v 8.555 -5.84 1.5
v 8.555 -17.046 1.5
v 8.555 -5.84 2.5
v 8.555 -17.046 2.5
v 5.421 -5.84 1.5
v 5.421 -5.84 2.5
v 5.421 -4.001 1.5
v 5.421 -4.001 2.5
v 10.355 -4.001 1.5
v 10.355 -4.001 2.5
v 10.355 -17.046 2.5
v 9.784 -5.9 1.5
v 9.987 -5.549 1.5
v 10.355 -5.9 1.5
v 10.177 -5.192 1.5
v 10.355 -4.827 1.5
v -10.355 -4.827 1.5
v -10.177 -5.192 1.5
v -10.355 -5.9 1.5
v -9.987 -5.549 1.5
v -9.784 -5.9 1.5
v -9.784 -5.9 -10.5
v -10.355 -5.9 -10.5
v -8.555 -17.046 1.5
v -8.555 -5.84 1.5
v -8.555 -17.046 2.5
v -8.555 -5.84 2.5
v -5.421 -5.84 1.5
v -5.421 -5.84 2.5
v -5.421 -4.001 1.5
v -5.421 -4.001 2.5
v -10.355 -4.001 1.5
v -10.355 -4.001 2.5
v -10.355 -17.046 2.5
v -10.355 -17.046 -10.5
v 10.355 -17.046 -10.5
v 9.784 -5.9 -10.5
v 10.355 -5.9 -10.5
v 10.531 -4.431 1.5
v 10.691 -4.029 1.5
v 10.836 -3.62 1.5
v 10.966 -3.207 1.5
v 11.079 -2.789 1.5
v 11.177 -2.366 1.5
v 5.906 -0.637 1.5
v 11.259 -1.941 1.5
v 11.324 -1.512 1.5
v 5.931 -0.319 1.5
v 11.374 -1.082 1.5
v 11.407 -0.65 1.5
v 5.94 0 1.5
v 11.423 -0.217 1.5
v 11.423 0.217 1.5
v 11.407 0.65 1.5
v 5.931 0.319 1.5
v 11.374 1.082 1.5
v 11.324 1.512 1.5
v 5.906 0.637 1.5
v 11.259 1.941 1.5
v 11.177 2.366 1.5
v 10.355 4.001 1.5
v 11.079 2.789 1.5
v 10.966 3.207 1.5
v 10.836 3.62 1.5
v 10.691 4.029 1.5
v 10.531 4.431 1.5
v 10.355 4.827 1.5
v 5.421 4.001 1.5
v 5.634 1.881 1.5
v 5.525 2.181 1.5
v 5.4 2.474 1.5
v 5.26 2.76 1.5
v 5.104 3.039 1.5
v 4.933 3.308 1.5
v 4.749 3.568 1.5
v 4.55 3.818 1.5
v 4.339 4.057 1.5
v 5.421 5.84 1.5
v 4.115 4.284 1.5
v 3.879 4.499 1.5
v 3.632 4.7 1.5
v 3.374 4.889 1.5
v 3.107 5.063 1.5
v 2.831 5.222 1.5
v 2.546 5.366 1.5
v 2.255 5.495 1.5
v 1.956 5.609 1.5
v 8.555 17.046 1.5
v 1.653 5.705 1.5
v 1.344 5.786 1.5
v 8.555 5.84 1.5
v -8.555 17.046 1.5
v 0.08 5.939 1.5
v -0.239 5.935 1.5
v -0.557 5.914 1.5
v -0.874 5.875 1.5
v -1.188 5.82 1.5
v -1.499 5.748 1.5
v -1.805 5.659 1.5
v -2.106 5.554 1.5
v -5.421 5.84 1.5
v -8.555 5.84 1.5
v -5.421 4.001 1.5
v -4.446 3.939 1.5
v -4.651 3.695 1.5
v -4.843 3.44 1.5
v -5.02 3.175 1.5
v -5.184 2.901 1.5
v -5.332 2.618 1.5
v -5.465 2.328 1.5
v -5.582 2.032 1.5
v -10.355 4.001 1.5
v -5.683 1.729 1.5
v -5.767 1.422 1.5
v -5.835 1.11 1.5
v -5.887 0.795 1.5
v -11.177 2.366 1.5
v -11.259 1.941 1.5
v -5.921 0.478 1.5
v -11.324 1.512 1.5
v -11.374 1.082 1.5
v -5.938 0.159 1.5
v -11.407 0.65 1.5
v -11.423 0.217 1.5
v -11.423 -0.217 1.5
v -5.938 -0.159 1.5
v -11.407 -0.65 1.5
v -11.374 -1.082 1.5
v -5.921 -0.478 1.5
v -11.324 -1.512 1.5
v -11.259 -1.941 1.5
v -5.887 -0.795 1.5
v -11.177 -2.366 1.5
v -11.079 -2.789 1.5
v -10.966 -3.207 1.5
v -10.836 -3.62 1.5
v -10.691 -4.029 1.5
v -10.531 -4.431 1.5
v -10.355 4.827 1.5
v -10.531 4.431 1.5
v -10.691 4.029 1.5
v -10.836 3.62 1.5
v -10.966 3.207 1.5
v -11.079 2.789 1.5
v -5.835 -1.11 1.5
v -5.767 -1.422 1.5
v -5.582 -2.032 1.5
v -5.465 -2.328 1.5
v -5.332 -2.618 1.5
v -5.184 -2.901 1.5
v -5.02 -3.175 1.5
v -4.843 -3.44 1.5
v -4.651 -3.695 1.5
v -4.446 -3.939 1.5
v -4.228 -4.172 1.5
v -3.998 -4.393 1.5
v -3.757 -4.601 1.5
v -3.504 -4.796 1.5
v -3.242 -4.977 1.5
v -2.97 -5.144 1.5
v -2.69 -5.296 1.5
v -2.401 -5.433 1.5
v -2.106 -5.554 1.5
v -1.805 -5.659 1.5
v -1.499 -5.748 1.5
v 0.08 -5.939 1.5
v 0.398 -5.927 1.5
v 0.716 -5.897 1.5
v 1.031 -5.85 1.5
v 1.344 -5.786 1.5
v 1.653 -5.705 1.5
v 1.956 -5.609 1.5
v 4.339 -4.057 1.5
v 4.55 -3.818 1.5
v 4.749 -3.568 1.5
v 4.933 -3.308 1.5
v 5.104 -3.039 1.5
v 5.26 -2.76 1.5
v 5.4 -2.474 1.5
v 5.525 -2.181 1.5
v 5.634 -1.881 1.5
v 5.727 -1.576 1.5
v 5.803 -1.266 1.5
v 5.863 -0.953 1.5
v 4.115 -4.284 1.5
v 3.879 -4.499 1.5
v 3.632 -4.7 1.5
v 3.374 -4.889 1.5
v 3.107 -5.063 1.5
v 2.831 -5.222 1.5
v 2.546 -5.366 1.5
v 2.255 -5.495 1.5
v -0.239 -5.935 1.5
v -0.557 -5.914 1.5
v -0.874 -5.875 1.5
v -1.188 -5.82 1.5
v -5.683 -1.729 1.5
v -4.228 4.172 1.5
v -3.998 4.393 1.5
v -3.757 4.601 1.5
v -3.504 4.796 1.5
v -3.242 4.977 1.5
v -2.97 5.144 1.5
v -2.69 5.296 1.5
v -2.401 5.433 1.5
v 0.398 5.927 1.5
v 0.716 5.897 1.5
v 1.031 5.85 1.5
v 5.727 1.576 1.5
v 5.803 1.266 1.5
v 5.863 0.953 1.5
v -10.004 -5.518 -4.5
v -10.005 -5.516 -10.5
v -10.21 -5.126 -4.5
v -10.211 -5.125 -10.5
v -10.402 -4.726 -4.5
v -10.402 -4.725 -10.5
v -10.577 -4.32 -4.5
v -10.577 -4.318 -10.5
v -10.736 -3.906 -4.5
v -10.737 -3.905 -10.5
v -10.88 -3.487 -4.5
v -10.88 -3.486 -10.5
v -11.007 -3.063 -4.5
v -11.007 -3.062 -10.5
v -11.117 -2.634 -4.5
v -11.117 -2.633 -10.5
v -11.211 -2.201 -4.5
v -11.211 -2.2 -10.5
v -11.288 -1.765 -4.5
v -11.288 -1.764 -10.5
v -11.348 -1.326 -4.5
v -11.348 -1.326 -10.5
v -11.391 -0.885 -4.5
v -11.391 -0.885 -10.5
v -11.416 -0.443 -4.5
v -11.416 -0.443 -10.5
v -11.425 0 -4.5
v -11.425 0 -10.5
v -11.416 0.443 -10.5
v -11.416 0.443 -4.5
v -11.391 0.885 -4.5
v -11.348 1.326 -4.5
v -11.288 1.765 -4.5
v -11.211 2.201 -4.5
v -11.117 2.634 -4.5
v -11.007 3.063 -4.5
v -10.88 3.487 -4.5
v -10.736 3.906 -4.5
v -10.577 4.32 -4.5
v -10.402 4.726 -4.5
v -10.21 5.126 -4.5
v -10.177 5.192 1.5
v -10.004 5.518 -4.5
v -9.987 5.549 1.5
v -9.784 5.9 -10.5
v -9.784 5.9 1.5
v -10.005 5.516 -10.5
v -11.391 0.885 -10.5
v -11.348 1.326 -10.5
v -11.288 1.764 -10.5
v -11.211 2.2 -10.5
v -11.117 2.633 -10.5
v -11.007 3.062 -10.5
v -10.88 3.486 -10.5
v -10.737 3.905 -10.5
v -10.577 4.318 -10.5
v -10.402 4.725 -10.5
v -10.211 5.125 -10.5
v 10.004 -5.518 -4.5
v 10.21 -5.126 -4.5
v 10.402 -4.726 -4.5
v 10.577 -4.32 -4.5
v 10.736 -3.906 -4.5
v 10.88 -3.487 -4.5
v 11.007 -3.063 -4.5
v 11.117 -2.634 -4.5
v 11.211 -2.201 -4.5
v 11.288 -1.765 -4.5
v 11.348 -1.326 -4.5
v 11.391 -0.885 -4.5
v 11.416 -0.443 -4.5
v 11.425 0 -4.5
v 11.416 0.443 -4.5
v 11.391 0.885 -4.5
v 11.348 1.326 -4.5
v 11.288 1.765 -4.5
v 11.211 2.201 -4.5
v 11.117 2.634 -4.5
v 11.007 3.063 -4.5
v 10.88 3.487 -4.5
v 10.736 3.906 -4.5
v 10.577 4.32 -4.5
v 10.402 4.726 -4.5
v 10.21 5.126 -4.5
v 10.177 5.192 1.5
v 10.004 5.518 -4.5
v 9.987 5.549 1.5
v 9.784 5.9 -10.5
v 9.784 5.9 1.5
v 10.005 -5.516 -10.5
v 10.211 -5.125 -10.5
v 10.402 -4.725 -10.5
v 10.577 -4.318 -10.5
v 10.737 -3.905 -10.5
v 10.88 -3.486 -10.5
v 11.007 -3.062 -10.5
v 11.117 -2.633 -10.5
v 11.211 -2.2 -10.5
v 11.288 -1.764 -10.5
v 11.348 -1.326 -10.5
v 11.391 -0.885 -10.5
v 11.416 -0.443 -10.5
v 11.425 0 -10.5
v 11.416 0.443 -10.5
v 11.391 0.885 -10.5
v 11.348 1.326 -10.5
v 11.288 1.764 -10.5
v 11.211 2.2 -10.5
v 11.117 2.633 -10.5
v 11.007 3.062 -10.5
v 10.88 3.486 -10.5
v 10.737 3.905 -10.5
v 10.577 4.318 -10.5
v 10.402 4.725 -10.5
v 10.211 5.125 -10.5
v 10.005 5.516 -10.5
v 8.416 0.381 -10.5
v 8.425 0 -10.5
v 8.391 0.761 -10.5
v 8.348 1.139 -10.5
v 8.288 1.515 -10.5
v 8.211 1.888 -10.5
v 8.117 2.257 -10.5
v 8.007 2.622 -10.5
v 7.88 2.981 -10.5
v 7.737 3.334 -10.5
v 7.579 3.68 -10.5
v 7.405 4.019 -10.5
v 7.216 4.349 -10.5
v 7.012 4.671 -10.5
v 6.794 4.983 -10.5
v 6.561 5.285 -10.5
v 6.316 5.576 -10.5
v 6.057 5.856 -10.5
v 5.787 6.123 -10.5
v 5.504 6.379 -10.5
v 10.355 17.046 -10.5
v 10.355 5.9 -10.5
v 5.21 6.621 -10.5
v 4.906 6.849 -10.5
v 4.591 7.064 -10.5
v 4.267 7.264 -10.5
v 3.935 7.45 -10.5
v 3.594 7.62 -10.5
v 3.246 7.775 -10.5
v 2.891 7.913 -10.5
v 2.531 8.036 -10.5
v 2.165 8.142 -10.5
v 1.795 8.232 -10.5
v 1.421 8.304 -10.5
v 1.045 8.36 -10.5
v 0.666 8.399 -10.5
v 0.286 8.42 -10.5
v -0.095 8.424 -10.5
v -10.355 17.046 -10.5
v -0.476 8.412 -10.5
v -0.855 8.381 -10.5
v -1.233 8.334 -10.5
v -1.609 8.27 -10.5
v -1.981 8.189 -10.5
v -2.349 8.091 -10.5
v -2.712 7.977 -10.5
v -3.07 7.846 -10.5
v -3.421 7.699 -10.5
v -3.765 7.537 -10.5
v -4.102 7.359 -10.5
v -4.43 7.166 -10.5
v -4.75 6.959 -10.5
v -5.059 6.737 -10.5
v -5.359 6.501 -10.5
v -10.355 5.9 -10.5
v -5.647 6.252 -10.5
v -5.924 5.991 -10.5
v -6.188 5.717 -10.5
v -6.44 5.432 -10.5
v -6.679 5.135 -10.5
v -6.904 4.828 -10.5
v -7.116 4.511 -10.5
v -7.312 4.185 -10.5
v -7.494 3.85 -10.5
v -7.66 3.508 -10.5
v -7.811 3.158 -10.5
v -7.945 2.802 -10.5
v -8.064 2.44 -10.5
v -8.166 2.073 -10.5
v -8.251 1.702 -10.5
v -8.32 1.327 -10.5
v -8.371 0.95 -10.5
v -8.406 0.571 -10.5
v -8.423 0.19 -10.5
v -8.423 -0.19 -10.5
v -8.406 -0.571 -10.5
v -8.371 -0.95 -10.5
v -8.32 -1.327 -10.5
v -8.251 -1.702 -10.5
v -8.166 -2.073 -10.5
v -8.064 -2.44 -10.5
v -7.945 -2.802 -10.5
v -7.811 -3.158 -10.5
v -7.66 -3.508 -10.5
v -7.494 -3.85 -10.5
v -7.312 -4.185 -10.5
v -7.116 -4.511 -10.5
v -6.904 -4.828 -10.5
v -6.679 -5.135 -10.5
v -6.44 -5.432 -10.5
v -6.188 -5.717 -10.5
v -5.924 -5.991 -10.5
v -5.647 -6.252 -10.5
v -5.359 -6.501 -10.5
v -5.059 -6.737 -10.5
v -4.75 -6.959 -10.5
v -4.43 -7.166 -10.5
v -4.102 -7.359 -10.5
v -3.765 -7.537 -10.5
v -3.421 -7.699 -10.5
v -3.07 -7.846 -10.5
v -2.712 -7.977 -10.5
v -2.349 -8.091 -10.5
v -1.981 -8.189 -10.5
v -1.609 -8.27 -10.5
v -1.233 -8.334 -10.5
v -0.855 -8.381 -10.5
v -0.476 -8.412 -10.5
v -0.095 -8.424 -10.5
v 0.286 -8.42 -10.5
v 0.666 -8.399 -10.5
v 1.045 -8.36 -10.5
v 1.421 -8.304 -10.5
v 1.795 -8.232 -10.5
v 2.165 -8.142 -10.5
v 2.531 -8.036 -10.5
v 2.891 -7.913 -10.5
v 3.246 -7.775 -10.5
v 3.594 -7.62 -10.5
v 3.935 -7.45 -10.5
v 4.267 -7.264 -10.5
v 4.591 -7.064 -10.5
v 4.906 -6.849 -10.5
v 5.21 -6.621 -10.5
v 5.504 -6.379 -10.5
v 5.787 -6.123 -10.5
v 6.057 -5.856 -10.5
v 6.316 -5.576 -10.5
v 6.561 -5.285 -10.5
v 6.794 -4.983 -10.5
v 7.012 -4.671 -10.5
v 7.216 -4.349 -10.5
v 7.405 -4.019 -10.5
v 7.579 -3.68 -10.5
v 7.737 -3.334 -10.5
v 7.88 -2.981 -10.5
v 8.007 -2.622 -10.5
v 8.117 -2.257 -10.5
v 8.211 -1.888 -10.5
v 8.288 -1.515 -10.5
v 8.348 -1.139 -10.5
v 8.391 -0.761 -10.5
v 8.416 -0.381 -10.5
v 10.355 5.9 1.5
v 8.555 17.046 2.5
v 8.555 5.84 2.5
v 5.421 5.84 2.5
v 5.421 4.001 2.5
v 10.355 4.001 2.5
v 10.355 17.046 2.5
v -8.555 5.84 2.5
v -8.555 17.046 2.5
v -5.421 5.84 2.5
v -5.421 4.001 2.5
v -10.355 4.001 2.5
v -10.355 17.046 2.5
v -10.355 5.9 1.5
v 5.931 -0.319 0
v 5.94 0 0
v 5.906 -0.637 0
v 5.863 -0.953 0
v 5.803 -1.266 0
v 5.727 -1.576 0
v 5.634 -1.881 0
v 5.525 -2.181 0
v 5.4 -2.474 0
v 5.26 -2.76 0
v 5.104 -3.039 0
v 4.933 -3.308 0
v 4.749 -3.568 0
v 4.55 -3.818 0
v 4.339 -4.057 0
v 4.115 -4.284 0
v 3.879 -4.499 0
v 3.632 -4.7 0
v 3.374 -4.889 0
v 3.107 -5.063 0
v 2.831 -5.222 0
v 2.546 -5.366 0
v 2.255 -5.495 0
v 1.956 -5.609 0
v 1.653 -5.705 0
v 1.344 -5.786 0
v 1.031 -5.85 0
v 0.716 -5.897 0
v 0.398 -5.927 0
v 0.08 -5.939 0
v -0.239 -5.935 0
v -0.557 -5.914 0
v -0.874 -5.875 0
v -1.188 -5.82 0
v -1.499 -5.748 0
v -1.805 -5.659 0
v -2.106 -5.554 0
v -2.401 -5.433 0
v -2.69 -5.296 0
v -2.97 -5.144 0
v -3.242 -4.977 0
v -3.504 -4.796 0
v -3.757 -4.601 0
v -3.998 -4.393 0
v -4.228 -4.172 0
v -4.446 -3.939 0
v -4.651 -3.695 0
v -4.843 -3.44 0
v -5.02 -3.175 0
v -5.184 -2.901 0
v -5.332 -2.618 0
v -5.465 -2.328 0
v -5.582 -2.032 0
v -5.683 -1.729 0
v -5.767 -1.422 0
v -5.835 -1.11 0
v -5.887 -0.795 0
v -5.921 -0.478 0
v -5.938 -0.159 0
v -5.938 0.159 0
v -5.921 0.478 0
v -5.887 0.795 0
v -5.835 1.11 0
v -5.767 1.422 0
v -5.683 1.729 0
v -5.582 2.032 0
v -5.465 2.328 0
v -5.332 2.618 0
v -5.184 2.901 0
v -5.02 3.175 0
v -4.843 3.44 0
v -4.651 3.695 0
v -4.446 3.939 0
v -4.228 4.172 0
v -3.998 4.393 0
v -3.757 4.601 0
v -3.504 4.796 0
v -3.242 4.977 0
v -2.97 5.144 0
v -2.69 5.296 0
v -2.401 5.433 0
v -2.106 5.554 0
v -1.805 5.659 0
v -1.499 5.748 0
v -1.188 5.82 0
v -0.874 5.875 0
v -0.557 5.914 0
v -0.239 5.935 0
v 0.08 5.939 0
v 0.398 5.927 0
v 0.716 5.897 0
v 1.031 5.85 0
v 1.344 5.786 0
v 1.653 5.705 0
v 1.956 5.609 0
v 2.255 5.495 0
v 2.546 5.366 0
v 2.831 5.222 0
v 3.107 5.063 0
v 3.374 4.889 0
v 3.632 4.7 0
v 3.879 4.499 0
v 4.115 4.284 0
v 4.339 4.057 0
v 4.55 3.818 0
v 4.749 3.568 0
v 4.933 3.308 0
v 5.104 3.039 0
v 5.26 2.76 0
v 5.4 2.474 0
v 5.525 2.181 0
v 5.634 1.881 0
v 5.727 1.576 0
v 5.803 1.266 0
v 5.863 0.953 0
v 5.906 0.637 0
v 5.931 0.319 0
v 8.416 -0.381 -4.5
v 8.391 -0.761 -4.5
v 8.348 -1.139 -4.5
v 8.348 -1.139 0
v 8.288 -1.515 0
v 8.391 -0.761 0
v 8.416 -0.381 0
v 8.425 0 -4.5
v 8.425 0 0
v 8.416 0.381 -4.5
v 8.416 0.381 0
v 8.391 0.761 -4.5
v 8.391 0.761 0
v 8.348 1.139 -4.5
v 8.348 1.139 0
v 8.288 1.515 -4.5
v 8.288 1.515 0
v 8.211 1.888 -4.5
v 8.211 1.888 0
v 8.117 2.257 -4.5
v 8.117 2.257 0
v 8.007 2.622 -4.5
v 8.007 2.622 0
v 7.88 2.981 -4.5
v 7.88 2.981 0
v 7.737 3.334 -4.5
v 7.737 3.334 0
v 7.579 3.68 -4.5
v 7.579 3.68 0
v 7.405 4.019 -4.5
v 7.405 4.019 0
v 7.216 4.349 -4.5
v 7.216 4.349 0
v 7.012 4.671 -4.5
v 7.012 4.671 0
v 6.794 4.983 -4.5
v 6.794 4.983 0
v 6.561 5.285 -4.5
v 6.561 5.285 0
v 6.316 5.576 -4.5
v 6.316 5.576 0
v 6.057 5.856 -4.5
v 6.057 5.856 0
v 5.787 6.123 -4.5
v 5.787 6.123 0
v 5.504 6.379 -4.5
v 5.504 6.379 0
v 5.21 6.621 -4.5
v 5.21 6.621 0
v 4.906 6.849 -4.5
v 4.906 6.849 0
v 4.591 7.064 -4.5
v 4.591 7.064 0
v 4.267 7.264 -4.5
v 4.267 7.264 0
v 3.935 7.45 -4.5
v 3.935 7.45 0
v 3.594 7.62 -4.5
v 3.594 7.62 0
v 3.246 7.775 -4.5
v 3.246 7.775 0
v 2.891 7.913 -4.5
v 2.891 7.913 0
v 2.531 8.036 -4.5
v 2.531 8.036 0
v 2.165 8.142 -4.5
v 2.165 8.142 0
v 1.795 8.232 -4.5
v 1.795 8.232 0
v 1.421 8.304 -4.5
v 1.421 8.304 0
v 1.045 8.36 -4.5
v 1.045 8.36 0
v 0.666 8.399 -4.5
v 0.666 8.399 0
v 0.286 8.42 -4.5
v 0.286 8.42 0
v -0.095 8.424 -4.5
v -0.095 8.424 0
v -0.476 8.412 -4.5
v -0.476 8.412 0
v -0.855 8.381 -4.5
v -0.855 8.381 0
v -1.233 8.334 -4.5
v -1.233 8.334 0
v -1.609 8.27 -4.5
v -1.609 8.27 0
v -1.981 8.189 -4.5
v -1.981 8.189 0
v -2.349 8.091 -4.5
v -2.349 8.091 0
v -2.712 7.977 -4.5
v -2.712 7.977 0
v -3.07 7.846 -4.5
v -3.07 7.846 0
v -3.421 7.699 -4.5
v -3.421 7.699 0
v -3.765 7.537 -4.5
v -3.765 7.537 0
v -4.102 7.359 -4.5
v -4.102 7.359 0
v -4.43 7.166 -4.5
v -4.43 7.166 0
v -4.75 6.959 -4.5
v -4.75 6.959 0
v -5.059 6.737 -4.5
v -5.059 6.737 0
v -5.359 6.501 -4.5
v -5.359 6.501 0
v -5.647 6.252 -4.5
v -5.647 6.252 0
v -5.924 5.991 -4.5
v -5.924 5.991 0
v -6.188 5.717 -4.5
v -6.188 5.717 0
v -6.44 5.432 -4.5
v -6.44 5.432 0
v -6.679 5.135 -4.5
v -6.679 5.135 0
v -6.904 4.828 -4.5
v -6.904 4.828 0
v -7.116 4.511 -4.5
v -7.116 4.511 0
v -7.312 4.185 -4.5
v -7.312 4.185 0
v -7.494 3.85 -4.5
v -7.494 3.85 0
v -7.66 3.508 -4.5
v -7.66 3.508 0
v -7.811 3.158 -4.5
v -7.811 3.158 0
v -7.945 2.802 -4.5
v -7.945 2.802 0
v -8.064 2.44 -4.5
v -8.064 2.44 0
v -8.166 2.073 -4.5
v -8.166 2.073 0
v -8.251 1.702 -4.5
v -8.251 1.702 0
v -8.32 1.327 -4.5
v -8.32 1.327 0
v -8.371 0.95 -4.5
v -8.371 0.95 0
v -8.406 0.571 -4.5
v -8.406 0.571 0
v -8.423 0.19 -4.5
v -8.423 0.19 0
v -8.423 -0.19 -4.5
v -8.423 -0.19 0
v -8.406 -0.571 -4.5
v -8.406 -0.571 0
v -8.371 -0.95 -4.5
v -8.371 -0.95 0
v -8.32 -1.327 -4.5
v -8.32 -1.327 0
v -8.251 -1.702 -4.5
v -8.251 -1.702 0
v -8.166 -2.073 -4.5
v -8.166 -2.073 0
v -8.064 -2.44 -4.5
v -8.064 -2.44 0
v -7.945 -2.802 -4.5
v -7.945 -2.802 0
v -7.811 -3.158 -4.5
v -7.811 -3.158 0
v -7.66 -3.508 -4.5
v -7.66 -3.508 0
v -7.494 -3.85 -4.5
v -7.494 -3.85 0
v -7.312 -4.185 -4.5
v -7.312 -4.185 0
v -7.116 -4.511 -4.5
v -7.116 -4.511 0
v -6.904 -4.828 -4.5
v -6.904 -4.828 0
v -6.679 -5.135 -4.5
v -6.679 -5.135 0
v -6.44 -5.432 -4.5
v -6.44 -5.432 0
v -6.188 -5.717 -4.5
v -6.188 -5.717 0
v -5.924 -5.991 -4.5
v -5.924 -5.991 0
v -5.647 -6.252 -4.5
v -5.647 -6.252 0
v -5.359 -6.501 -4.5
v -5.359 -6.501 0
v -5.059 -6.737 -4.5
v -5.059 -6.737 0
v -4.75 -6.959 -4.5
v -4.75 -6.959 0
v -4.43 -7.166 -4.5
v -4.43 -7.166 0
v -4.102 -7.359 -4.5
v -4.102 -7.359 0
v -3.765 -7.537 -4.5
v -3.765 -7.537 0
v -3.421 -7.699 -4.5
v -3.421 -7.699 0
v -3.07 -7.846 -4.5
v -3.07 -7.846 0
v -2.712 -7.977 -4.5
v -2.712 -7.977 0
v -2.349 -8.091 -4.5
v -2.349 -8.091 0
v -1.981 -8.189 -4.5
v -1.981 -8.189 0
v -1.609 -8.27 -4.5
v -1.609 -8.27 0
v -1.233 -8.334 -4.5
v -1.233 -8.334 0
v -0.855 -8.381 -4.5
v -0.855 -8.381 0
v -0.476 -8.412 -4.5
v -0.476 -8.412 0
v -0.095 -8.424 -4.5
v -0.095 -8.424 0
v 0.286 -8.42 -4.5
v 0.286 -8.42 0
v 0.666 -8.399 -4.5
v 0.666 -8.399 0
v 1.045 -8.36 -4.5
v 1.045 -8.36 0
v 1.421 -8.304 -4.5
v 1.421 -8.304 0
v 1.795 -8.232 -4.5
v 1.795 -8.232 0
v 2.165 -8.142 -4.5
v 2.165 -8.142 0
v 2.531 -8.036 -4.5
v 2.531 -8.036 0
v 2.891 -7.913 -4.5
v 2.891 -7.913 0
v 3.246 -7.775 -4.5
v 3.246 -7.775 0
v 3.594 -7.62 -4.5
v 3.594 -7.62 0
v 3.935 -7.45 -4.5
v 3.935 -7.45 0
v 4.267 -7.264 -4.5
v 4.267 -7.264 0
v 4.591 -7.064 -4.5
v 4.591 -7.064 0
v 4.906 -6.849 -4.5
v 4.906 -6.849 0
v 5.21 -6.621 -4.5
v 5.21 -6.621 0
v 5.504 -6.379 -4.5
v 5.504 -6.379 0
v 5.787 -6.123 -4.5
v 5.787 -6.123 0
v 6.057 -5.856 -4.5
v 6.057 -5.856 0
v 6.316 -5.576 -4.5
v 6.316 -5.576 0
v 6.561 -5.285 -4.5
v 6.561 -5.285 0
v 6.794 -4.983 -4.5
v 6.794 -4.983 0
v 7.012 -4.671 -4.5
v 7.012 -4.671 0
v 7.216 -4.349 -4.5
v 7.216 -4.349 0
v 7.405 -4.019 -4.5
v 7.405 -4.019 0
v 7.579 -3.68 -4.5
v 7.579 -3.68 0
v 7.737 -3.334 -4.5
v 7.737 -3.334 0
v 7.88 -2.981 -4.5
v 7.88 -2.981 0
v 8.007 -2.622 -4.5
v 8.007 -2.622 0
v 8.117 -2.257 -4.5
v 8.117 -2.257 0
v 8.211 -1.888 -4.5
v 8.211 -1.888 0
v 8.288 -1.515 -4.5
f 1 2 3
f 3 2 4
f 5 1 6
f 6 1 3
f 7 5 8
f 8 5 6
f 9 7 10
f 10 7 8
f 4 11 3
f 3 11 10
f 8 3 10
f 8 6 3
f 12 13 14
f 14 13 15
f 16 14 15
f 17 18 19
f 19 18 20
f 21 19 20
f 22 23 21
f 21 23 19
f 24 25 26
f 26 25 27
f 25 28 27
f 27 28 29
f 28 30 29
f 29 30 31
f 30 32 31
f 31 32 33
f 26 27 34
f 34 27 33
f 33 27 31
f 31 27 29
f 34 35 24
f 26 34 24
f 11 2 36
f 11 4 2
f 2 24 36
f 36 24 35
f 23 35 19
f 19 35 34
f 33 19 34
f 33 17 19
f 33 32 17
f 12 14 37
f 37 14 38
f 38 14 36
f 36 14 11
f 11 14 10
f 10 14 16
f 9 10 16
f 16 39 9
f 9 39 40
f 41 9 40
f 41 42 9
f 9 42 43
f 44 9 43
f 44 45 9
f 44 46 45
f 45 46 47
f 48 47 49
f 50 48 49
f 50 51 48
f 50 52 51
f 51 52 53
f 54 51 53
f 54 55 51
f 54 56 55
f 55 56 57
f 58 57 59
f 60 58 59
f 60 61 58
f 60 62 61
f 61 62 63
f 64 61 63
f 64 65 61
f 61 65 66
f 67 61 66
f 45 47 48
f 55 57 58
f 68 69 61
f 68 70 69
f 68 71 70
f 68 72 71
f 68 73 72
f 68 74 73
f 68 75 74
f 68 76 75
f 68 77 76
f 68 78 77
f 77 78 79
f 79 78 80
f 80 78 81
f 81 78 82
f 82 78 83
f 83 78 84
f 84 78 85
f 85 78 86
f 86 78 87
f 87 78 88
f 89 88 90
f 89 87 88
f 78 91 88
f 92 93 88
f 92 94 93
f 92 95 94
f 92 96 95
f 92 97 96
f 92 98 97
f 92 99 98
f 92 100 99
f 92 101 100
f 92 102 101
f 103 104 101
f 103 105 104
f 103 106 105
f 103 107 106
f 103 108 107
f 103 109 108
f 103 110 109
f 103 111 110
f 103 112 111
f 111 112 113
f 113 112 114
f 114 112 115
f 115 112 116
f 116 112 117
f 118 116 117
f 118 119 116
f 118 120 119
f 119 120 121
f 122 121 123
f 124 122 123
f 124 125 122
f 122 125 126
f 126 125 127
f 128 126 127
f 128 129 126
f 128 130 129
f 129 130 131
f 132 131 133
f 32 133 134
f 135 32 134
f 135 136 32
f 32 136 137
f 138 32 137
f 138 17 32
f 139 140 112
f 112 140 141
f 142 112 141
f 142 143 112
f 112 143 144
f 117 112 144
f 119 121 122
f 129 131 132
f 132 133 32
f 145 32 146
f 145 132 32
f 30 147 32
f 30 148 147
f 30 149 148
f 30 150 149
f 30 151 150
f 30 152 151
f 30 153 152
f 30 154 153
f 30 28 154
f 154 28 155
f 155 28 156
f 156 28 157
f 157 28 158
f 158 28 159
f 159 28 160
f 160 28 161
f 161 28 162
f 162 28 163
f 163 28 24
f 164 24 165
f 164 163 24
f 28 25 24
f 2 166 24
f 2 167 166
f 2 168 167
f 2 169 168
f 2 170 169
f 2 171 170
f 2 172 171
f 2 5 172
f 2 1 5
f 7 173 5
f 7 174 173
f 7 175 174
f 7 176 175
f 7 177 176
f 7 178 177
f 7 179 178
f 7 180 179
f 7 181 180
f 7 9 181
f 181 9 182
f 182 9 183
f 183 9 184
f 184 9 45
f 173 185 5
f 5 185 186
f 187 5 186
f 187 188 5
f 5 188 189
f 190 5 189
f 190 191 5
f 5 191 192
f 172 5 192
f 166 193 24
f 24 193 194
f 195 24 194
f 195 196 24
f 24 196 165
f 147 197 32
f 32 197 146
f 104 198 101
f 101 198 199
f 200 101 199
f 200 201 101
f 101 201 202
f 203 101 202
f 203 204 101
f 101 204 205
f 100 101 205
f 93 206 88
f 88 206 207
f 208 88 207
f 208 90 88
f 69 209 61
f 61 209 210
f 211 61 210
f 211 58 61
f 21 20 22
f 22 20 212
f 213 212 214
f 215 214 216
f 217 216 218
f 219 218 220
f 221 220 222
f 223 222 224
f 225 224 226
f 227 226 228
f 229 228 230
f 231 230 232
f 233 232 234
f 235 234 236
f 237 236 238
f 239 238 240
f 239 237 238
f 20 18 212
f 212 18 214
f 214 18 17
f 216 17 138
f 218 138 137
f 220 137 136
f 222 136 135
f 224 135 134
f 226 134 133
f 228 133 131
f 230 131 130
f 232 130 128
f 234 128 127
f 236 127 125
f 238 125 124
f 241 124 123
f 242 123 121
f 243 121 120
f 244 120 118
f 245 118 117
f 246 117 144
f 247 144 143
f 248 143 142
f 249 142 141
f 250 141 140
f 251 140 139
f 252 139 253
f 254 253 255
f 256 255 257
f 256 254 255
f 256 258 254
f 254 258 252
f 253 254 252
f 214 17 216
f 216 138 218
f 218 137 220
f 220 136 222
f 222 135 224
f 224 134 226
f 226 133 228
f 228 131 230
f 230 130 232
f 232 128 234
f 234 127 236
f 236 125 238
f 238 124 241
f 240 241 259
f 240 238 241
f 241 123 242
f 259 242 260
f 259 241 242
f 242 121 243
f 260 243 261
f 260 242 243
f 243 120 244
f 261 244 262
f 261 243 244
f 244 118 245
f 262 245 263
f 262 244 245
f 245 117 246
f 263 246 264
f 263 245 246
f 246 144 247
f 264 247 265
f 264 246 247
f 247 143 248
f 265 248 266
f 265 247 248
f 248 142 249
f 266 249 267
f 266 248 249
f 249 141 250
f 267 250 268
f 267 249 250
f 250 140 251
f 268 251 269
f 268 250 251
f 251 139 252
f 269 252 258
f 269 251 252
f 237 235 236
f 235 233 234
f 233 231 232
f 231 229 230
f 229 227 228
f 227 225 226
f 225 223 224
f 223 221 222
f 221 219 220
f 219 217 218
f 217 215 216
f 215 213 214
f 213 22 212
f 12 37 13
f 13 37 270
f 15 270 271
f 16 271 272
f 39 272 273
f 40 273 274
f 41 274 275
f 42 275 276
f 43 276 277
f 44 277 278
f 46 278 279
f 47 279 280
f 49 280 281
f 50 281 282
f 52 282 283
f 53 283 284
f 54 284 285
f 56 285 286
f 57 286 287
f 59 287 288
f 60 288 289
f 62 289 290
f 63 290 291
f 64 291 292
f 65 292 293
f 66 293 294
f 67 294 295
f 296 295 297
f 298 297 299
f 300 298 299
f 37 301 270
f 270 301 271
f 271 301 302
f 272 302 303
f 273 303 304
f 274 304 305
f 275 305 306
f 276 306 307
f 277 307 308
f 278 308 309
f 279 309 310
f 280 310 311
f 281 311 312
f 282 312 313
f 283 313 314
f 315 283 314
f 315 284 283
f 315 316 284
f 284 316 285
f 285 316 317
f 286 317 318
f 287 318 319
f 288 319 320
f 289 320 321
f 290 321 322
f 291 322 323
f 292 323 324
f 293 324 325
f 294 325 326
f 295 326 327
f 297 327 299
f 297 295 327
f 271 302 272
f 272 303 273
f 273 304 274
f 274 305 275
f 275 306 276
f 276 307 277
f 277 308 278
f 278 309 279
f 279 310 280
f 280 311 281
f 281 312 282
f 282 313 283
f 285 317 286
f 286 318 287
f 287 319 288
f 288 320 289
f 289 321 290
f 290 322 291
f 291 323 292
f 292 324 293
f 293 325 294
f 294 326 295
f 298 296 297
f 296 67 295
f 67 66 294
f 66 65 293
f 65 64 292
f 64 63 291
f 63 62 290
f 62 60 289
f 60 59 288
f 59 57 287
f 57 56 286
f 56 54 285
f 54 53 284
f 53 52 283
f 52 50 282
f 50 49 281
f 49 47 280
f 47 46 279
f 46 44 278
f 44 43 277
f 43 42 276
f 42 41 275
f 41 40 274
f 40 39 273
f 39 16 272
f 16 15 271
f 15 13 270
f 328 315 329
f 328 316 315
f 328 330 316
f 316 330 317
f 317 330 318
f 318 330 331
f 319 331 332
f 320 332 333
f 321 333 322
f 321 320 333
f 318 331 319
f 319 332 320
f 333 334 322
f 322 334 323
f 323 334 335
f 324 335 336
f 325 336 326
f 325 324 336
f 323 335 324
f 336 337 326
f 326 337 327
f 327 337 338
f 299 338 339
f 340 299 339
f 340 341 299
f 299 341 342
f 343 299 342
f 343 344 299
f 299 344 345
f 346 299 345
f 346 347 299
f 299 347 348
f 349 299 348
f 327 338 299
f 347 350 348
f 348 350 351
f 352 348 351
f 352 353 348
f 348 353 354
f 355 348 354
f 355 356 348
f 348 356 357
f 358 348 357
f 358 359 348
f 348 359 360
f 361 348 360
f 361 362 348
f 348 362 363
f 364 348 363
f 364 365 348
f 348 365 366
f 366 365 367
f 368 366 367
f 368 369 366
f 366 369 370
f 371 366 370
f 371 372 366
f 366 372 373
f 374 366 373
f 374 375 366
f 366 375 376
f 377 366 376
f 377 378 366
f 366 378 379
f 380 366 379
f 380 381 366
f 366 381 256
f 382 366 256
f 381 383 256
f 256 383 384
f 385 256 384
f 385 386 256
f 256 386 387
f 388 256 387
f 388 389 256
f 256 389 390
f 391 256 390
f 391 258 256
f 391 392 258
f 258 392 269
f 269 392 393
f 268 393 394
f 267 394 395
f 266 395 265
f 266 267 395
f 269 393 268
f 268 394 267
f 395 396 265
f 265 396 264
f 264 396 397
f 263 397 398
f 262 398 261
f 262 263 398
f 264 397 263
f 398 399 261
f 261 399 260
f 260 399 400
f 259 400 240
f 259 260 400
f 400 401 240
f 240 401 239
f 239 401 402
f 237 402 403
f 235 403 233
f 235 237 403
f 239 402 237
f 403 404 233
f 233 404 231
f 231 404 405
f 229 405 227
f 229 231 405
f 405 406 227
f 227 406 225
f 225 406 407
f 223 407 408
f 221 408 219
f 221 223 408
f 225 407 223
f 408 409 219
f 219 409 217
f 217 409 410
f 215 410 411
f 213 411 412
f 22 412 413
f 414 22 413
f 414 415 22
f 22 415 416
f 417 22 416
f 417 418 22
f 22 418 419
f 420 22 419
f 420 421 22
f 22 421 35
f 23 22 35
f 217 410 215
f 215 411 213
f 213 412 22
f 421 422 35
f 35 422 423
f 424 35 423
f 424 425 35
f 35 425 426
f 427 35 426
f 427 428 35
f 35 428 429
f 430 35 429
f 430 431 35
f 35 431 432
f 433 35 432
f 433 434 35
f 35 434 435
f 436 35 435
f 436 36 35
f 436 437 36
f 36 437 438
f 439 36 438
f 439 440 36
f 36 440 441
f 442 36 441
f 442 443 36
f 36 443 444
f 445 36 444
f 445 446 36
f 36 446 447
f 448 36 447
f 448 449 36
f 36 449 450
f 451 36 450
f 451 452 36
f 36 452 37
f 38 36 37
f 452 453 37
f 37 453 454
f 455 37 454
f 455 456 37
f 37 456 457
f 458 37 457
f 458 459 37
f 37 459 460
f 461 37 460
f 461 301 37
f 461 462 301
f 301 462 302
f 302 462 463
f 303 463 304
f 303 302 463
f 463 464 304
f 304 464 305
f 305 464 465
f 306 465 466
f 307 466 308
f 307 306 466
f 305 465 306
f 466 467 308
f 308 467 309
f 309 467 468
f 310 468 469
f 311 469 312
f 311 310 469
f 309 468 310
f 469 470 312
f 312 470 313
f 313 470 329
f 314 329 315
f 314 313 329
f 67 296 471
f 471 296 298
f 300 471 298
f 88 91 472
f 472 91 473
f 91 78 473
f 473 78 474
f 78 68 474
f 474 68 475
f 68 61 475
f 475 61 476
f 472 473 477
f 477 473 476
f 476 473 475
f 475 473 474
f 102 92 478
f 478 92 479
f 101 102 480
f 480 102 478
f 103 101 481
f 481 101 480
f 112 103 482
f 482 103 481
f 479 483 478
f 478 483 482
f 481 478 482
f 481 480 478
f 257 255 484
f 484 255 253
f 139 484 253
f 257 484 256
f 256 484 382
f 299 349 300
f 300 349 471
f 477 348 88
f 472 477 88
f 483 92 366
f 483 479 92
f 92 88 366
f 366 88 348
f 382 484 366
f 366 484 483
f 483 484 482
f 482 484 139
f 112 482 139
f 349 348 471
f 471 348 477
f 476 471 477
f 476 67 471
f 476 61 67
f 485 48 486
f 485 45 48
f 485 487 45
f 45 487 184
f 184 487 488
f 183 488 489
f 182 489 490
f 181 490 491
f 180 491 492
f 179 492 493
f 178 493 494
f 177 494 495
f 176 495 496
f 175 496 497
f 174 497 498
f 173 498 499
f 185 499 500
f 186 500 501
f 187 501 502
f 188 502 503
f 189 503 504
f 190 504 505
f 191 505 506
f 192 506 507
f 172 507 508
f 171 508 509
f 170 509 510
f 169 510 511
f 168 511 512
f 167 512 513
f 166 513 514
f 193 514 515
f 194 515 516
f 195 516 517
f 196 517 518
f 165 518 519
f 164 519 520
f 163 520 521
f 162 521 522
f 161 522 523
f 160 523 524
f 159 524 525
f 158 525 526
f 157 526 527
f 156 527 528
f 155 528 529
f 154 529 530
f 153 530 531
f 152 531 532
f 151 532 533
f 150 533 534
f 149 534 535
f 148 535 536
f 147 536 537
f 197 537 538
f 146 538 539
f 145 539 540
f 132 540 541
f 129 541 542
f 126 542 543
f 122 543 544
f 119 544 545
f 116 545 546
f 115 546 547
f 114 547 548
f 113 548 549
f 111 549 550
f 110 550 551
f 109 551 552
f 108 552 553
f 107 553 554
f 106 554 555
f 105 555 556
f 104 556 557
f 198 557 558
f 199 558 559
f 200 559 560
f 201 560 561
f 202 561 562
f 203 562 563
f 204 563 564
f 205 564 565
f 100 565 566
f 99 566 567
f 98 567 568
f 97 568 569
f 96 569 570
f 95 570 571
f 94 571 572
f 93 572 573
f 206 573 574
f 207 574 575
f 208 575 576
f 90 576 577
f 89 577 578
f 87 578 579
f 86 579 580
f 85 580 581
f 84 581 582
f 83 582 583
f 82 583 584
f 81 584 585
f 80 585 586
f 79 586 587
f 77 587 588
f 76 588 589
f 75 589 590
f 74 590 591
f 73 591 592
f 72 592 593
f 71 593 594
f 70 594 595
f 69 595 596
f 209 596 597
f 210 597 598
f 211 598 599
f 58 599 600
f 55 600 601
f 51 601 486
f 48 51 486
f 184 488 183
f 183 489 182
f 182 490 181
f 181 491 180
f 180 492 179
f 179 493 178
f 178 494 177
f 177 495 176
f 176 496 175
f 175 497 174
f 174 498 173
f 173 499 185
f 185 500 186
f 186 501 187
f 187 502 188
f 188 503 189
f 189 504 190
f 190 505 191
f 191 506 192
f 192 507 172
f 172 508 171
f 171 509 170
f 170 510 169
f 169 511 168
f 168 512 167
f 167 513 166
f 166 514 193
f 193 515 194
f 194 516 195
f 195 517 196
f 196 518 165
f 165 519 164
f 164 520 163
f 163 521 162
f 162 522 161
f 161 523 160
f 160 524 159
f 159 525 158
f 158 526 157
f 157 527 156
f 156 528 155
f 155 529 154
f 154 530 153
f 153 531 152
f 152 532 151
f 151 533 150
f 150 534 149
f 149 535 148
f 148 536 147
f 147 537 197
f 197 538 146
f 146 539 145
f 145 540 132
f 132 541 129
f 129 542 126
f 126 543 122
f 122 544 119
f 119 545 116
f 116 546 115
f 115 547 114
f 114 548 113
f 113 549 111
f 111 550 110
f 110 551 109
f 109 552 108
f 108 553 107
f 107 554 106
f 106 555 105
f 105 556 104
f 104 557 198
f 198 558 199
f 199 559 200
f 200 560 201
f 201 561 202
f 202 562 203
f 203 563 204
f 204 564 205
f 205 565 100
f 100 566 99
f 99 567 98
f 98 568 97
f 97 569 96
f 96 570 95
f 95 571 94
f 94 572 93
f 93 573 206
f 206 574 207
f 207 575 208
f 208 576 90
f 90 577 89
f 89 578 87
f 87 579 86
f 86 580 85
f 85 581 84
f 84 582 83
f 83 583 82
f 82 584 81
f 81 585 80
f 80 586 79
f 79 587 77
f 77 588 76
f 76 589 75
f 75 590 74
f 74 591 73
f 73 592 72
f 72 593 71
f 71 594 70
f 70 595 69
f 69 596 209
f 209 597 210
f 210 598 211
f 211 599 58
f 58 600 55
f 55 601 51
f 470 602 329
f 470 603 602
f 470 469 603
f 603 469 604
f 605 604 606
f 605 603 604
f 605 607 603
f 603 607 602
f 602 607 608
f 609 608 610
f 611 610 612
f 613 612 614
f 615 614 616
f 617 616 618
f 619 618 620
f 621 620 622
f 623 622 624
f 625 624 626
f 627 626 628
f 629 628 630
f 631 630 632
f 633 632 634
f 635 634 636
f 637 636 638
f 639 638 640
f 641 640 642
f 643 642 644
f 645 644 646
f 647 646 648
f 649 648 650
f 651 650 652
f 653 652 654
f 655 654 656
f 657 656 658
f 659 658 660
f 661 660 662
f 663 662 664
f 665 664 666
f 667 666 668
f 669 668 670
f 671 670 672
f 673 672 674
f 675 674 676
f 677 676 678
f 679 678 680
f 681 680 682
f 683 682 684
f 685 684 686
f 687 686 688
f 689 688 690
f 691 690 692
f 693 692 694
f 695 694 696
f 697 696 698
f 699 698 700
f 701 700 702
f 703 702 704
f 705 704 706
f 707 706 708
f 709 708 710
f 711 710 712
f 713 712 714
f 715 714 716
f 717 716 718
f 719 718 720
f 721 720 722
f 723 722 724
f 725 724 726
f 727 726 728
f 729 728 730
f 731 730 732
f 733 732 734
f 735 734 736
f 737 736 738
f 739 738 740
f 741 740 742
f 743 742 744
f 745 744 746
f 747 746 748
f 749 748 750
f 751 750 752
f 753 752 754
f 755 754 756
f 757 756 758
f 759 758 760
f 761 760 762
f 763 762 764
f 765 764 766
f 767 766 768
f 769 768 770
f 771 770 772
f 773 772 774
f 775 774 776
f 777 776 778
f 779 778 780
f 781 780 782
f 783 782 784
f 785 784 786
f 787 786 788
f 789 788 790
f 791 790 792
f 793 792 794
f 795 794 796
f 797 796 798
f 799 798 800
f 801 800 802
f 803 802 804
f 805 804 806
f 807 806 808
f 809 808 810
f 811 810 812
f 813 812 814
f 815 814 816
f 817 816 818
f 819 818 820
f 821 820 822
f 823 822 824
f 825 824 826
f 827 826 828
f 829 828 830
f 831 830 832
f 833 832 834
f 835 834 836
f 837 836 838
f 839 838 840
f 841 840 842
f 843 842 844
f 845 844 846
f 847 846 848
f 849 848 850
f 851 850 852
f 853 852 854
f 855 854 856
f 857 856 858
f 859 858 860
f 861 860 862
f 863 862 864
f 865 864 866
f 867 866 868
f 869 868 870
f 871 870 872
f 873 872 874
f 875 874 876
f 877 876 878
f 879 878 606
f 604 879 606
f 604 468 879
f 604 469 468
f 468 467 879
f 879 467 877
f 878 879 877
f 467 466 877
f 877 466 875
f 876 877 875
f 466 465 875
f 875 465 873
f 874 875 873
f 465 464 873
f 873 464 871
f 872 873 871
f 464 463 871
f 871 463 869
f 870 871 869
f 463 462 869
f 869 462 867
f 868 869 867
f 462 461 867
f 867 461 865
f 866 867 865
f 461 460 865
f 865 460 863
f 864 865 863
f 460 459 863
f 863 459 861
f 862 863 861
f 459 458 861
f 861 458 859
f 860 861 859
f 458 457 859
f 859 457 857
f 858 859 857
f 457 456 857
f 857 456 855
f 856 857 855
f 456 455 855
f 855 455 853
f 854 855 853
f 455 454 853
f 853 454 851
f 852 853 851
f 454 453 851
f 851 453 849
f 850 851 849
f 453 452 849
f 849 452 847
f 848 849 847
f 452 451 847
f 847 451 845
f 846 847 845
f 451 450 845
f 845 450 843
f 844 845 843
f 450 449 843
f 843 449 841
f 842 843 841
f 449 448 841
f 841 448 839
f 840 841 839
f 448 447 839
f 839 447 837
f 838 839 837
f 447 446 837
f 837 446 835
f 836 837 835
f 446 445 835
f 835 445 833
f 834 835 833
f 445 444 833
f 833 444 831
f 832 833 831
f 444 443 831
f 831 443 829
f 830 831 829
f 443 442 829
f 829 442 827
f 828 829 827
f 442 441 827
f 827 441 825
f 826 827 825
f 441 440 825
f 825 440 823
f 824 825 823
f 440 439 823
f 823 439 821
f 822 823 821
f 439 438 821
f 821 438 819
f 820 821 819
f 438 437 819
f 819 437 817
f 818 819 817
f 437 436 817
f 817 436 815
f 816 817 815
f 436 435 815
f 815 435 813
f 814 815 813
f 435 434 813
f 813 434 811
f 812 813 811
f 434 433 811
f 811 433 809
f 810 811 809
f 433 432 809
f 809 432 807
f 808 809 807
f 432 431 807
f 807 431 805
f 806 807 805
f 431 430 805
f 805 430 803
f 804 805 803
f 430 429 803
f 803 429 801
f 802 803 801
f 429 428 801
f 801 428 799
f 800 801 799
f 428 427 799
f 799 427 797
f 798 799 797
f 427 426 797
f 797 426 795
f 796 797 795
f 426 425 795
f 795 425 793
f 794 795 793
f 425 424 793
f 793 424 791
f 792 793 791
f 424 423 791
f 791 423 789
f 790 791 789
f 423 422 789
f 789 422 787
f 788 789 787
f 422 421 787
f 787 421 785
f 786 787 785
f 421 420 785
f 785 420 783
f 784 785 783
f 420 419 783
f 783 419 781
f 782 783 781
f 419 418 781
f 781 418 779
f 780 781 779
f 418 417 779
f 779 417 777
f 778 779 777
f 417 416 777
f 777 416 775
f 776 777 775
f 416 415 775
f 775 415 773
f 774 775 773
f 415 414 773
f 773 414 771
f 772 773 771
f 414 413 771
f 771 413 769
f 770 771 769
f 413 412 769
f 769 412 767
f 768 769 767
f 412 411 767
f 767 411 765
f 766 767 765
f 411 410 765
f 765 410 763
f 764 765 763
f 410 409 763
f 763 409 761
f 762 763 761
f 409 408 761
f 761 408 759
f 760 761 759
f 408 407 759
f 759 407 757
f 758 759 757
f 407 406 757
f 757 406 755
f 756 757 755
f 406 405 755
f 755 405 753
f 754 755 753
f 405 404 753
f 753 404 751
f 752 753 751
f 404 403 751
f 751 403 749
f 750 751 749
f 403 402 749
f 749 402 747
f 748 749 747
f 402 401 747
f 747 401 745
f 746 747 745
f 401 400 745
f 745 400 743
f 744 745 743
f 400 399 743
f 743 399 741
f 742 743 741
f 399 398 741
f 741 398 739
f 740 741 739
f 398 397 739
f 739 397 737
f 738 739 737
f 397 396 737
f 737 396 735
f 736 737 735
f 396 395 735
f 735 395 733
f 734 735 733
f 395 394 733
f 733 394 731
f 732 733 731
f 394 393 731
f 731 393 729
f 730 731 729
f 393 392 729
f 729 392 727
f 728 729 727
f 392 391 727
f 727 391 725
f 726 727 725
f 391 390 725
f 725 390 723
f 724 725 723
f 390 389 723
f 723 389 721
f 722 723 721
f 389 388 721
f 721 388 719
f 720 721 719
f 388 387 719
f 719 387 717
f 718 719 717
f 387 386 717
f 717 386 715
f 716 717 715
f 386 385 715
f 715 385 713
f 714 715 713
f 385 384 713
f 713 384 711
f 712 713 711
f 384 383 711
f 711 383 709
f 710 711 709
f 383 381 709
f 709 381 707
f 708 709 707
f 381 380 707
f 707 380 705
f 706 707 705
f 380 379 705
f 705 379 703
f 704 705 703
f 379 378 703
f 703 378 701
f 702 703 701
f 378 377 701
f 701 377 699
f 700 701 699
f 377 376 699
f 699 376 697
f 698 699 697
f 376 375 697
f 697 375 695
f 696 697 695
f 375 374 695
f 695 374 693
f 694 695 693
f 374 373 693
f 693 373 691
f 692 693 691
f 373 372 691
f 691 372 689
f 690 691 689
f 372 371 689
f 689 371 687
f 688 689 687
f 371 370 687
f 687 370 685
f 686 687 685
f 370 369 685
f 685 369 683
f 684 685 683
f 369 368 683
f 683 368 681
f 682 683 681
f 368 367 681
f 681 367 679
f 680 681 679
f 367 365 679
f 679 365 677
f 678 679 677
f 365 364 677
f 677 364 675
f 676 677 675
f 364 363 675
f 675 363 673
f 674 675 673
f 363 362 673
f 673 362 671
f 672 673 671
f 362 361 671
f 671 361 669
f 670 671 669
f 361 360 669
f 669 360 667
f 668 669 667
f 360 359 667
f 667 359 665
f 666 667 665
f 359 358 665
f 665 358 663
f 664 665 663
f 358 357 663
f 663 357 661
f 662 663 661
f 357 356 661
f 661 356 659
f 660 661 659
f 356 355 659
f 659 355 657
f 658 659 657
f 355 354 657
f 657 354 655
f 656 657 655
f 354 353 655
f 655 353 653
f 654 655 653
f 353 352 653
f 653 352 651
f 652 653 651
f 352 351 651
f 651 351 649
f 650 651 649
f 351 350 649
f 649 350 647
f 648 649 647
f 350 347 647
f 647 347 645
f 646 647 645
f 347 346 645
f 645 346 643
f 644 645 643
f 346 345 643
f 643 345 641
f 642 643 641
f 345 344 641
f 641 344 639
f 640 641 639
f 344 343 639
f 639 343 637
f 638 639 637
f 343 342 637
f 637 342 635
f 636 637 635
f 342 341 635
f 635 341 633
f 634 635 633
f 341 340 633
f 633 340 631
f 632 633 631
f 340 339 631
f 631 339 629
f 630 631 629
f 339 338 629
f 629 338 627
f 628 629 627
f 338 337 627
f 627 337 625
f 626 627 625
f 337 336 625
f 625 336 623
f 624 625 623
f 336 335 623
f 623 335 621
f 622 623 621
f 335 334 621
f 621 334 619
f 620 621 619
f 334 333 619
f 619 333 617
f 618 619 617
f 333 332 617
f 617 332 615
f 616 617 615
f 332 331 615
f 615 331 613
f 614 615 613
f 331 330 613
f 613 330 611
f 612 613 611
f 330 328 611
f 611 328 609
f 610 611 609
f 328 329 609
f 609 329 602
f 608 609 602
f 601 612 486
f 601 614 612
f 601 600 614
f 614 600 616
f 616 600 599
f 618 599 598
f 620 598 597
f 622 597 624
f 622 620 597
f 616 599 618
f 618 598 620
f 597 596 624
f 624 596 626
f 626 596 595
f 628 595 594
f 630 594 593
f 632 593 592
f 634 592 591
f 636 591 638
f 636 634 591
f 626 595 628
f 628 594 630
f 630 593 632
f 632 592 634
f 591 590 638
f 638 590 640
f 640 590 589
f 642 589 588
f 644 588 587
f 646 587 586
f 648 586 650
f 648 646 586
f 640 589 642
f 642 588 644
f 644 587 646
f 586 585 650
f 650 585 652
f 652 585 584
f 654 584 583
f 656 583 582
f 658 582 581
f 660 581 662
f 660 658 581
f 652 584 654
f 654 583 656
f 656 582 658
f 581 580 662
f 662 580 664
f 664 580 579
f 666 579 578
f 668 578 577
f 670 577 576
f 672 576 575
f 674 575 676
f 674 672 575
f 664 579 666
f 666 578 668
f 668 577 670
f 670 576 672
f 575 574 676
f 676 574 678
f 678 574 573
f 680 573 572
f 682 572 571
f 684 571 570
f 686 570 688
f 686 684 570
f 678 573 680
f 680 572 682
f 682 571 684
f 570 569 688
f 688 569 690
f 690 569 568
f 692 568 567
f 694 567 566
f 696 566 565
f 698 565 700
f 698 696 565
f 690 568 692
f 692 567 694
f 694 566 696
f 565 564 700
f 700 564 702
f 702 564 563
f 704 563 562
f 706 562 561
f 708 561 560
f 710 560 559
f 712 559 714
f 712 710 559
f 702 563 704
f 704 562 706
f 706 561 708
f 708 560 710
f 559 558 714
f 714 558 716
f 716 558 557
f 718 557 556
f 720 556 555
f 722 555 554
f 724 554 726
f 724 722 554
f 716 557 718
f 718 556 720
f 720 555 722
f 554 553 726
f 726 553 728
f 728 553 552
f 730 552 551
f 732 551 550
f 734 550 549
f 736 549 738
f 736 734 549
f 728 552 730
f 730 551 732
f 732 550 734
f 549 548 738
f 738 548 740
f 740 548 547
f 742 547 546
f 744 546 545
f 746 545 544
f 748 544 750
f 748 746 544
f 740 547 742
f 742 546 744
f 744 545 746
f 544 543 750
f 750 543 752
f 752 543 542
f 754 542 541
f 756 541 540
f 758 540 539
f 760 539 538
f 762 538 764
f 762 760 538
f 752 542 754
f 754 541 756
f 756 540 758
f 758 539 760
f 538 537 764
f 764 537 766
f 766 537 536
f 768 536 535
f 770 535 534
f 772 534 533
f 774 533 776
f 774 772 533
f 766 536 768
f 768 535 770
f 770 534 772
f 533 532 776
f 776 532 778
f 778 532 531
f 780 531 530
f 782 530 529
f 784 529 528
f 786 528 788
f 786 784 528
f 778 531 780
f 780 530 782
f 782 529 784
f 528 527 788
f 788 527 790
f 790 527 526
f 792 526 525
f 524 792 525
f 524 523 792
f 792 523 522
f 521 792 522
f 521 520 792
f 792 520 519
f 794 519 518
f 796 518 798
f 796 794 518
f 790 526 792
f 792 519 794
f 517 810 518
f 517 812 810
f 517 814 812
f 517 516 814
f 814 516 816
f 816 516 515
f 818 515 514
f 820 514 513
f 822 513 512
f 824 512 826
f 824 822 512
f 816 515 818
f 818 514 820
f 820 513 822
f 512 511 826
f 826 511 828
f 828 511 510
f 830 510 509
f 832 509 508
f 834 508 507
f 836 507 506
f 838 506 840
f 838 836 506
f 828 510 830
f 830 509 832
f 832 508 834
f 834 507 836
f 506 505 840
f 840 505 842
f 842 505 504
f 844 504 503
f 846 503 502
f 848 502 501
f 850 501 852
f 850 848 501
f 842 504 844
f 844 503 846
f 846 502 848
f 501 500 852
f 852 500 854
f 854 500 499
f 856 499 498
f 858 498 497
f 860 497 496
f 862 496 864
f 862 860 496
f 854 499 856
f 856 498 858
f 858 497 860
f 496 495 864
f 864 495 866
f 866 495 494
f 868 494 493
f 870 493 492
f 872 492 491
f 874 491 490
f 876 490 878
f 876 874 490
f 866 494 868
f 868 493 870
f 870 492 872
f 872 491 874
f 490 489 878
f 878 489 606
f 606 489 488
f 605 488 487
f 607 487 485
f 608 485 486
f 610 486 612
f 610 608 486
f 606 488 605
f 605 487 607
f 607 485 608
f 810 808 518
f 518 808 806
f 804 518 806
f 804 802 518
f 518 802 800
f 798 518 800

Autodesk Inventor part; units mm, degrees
ref_plane "YZ Plane" through (0, 0, 0) normal (1, 0, 0) x (0, 1, 0)
ref_plane "XZ Plane" through (0, 0, 0) normal (0, 1, 0) x (-1, 0, 0)
ref_plane "XY Plane" through (0, 0, 0) normal (0, 0, 1) x (1, 0, 0)
sketch "Sketch1" plane through (0, 0, 0) normal (0, 0, 1) x (1, 0, 0)
  circle A0 centre (0, 0) radius 7.925 projected
  circle A1 centre (0, 0) radius 8.425
  point P0 (0, 0)
  dimension "d0" = 0.5
extrude "Extrusion1" add sketch "Sketch1" along normal blind 1.5 contours A0 | A1
sketch "Sketch2" plane through (0, 0, 1.5) normal (0, 0, 1) x (1, 0, 0)
  circle A0 centre (0, 0) radius 8.425 projected
  circle A1 centre (0, 0) radius 11.425
  dimension "d3" = 3
extrude "Extrusion2" add sketch "Sketch2" against normal blind 12
sketch "Sketch3" plane through (0, 0, 1.5) normal (0, 0, 1) x (1, 0, 0)
  circle A0 centre (0, 0) radius 6.94 projected
  circle A1 centre (0, 0) radius 5.94
  dimension "d6" = 1
extrude "Extrusion3" cut sketch "Sketch3" against normal through all contours A1
sketch "Sketch4" plane through (0, 0, 1.5) normal (0, 0, 1) x (1, 0, 0)
  line L0 (-8.355, 16.96) -> (-8.355, 7.9) projected
  line L1 (8.355, 7.9) -> (8.355, 16.96) projected
  line L2 (-10.355, 17.0459) -> (10.355, 17.0459)
  line L3 (10.355, 17.0459) -> (10.355, 5.9)
  line L4 (-10.355, 5.9) -> (-10.355, 17.0459)
  circle A0 centre (0, 0) radius 10.575 projected
  line L5 (-8.7761, 5.9) -> (-10.355, 5.9)
  line L6 (10.355, 5.9) -> (8.7761, 5.9)
  arc A1 (8.7761, 5.9) -> (-8.7761, 5.9) centre (0, 0) ccw
extrude "Extrusion4" add sketch "Sketch4" against normal up to surface (12 mm away) contours L2 L3 L6 A0 L5 L4
sketch "Sketch5" plane through (0, 0, 1.5) normal (0, 0, 1) x (1, 0, 0)
  line L0 (10.355, 17.0459) -> (-10.355, 17.0459) projected
  line L1 (-8.355, 16.96) -> (-8.355, 7.9) projected
  line L2 (8.355, 7.9) -> (8.355, 16.96) projected
  line L3 (-6.395, 5.94) -> (6.395, 5.94) projected
  line L4 (-8.555, 17.0459) -> (-8.555, 7.9)
  line L5 (-8.555, 7.9) -> (-8.555, 5.94)
  line L6 (-8.555, 5.94) -> (-8.555, 5.84)
  line L7 (-8.555, 5.84) -> (-5.4211, 5.84)
  line L8 (-5.4211, 5.84) -> (-5.4211, 4.0009)
  line L9 (-5.4211, 4.0009) -> (-10.355, 4.0009)
  line L10 (-10.355, 4.0009) -> (-10.355, 17.0459)
  line L11 (-10.355, 17.0459) -> (-8.555, 17.0459)
  dimension "d12" = 0.2
  dimension "d13" = 0.1
extrude "Extrusion5" add sketch "Sketch5" along normal blind 1
sketch "Sketch6" plane through (0, 0, 2.5) normal (0, 0, 1) x (1, 0, 0)
  line L0 (-10.355, 4.0009) -> (-5.4211, 4.0009)
  line L1 (-5.4211, 4.0009) -> (-5.4211, 13.0009)
  line L2 (-5.4211, 13.0009) -> (-10.355, 13.0009)
  line L3 (-10.355, 13.0009) -> (-10.355, 4.0009)
  point P0 (0, 0)
  dimension "d18" = 9
extrude "Extrusion6" [suppressed]
mirror "Mirror1" about plane through (0, 0, 0) normal (1, 0, 0) of "Extrusion5"
mirror "Mirror2" about plane through (0, 0, 0) normal (0, 1, 0) of "Extrusion5", "Mirror1", "Extrusion4"
properties part number "PI_holder"
